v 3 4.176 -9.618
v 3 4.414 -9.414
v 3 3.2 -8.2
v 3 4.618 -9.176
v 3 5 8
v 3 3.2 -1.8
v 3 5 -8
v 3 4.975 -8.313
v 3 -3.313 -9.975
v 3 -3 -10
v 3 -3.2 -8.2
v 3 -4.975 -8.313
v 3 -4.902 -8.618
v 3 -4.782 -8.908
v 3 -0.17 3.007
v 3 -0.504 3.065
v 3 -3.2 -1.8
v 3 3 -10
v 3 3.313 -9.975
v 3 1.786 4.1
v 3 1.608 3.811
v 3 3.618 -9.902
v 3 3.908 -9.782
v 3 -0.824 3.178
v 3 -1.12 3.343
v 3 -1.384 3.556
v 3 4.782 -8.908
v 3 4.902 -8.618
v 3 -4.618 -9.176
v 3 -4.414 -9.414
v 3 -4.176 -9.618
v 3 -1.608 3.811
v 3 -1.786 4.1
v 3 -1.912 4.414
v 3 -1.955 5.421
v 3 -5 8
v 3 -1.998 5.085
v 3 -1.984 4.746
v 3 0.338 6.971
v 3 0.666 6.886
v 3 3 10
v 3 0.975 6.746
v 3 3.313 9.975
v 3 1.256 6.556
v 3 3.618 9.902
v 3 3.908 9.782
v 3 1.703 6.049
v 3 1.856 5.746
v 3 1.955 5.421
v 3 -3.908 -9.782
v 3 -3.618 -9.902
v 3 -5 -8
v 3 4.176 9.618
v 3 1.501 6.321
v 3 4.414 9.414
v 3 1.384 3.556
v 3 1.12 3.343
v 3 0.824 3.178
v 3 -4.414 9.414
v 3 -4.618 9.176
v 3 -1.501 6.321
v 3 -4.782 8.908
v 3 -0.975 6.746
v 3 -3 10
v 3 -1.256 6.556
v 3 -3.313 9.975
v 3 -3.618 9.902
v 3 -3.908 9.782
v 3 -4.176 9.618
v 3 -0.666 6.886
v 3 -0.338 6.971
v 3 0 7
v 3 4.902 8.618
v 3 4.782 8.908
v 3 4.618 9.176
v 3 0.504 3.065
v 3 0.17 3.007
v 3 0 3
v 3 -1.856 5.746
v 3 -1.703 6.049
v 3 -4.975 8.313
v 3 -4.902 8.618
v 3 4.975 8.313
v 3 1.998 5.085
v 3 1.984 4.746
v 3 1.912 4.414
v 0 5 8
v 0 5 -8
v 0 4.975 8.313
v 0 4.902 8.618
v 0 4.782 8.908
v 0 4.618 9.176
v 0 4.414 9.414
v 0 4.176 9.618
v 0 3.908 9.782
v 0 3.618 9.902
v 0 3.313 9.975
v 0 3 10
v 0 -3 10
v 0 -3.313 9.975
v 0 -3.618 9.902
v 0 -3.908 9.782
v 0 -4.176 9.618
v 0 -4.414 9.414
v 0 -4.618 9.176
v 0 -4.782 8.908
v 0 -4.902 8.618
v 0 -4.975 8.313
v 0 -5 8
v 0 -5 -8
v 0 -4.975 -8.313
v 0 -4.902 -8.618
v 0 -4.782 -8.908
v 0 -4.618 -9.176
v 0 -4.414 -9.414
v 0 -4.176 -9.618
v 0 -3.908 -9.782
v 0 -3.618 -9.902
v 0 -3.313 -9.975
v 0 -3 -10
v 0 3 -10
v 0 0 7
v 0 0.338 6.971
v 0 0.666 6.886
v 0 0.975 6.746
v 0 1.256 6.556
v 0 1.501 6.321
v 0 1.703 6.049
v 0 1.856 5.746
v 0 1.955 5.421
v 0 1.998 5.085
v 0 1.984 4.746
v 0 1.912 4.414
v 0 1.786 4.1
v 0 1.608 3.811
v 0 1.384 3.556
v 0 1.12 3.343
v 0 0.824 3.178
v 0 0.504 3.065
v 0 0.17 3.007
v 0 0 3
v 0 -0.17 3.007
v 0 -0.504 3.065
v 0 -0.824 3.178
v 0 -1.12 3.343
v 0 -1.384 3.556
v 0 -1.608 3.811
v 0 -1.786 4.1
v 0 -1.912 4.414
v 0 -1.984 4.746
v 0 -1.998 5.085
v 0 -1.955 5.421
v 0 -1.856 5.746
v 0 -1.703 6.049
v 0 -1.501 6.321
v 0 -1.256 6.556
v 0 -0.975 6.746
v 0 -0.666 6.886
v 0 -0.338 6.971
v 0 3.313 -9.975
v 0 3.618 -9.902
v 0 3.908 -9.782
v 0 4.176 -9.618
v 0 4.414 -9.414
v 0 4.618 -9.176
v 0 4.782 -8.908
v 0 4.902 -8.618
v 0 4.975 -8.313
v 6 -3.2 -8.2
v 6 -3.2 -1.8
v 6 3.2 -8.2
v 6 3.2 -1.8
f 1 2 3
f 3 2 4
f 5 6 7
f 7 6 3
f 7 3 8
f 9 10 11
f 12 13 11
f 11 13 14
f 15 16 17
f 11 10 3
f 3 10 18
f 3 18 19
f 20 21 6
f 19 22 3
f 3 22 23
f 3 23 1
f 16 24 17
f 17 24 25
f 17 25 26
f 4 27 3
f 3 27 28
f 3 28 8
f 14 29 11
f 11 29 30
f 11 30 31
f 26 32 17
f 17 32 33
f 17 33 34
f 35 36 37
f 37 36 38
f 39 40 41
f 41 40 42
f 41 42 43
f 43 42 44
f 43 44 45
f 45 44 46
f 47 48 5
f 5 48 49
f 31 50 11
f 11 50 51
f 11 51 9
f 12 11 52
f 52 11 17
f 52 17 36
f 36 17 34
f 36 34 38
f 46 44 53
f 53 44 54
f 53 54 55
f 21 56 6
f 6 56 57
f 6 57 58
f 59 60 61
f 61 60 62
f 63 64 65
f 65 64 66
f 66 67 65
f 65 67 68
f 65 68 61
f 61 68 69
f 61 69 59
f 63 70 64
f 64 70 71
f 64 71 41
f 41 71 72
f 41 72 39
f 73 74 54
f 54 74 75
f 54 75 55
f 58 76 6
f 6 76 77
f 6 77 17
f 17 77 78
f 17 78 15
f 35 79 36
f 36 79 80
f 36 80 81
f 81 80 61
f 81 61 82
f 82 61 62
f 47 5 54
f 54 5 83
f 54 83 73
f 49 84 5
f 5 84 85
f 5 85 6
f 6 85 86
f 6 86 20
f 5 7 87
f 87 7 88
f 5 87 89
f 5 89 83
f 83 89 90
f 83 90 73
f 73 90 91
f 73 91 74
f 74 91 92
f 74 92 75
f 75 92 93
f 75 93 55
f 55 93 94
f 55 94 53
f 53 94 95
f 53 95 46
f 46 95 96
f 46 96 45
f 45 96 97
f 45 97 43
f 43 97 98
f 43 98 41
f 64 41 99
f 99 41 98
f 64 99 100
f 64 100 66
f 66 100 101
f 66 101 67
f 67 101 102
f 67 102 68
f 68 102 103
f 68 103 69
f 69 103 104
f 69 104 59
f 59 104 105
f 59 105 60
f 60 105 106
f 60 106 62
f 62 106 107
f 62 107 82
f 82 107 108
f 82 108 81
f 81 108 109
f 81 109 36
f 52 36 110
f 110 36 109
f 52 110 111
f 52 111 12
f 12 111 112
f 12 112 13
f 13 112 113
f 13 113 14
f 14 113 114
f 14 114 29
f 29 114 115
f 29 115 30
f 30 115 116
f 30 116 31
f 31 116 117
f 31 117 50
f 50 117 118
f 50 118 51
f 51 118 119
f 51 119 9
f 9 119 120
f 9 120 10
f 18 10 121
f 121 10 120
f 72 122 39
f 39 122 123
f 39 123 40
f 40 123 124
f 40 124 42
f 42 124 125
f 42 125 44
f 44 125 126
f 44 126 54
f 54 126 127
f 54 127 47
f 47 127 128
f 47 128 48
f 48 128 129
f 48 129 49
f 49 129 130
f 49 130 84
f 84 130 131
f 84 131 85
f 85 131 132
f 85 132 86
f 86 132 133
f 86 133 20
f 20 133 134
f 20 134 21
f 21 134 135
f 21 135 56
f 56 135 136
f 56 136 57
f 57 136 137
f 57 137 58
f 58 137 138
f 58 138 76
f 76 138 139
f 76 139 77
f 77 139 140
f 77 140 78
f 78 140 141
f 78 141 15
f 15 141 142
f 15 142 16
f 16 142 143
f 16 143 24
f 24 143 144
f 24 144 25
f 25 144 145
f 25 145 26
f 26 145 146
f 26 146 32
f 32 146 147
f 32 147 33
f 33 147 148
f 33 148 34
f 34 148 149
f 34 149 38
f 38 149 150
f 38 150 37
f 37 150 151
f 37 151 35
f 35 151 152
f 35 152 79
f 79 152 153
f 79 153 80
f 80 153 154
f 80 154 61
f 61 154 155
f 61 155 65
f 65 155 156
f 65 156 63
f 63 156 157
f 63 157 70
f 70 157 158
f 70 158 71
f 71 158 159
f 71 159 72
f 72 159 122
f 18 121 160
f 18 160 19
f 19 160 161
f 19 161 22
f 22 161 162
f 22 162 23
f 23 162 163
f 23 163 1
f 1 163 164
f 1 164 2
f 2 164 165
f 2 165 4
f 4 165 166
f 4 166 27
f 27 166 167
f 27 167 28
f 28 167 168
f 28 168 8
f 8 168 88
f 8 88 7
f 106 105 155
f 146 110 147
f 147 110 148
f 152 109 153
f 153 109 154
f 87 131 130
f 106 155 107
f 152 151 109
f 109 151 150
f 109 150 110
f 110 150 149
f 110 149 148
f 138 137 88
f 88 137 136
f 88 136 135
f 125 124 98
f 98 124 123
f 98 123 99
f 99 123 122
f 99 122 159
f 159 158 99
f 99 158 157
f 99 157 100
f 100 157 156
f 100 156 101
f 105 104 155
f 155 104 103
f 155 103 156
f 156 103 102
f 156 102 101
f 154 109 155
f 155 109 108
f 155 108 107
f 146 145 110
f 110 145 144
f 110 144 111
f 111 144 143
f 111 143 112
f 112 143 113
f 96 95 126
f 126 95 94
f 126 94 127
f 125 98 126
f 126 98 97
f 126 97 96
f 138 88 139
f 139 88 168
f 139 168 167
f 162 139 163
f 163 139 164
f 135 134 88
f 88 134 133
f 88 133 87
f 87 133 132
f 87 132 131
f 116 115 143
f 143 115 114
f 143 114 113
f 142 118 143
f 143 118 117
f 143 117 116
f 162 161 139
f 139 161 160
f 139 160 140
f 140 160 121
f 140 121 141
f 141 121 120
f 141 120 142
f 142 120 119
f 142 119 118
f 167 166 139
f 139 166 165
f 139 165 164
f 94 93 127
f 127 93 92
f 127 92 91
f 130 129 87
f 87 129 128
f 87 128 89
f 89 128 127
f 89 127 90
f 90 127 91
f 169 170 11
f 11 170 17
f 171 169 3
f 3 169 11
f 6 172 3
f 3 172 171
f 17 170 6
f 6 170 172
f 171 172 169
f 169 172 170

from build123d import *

# Parameters (mm, degrees)
SKETCH1_R           = 2
BOSS_EXTRUDE1_DEPTH = 3
SKETCH1_3_W         = 6.4
SKETCH1_3_H         = 6.4
BOSS_EXTRUDE2_DEPTH = 6


with BuildPart() as part:
    # Sketch1 → Boss-Extrude1 (new body)
    with BuildSketch(Plane(origin=(0, 0, 0), x_dir=(0, 0, -1), z_dir=(1, 0, 0))):
        with BuildLine():
            Line((-8, -5), (8, -5))
            ThreePointArc((8, -5), (9.414213562, -4.414213562), (10, -3))
            Line((10, -3), (10, 3))
            ThreePointArc((10, 3), (9.414213562, 4.414213562), (8, 5))
            Line((8, 5), (-8, 5))
            ThreePointArc((-8, 5), (-9.414213562, 4.414213562), (-10, 3))
            Line((-10, 3), (-10, -3))
            ThreePointArc((-10, -3), (-9.414213562, -4.414213562), (-8, -5))
        make_face()
        with Locations((-5, 0)):
            Circle(SKETCH1_R, mode=Mode.SUBTRACT)
    extrude(amount=BOSS_EXTRUDE1_DEPTH)

    # Sketch1<3> → Boss-Extrude2 (add)
    with BuildSketch(Plane(origin=(0, 0, 0), x_dir=(0, 0, -1), z_dir=(1, 0, 0))):
        with Locations((5, 0)):
            Rectangle(SKETCH1_3_W, SKETCH1_3_H)
    extrude(amount=BOSS_EXTRUDE2_DEPTH)


solid = part.part
